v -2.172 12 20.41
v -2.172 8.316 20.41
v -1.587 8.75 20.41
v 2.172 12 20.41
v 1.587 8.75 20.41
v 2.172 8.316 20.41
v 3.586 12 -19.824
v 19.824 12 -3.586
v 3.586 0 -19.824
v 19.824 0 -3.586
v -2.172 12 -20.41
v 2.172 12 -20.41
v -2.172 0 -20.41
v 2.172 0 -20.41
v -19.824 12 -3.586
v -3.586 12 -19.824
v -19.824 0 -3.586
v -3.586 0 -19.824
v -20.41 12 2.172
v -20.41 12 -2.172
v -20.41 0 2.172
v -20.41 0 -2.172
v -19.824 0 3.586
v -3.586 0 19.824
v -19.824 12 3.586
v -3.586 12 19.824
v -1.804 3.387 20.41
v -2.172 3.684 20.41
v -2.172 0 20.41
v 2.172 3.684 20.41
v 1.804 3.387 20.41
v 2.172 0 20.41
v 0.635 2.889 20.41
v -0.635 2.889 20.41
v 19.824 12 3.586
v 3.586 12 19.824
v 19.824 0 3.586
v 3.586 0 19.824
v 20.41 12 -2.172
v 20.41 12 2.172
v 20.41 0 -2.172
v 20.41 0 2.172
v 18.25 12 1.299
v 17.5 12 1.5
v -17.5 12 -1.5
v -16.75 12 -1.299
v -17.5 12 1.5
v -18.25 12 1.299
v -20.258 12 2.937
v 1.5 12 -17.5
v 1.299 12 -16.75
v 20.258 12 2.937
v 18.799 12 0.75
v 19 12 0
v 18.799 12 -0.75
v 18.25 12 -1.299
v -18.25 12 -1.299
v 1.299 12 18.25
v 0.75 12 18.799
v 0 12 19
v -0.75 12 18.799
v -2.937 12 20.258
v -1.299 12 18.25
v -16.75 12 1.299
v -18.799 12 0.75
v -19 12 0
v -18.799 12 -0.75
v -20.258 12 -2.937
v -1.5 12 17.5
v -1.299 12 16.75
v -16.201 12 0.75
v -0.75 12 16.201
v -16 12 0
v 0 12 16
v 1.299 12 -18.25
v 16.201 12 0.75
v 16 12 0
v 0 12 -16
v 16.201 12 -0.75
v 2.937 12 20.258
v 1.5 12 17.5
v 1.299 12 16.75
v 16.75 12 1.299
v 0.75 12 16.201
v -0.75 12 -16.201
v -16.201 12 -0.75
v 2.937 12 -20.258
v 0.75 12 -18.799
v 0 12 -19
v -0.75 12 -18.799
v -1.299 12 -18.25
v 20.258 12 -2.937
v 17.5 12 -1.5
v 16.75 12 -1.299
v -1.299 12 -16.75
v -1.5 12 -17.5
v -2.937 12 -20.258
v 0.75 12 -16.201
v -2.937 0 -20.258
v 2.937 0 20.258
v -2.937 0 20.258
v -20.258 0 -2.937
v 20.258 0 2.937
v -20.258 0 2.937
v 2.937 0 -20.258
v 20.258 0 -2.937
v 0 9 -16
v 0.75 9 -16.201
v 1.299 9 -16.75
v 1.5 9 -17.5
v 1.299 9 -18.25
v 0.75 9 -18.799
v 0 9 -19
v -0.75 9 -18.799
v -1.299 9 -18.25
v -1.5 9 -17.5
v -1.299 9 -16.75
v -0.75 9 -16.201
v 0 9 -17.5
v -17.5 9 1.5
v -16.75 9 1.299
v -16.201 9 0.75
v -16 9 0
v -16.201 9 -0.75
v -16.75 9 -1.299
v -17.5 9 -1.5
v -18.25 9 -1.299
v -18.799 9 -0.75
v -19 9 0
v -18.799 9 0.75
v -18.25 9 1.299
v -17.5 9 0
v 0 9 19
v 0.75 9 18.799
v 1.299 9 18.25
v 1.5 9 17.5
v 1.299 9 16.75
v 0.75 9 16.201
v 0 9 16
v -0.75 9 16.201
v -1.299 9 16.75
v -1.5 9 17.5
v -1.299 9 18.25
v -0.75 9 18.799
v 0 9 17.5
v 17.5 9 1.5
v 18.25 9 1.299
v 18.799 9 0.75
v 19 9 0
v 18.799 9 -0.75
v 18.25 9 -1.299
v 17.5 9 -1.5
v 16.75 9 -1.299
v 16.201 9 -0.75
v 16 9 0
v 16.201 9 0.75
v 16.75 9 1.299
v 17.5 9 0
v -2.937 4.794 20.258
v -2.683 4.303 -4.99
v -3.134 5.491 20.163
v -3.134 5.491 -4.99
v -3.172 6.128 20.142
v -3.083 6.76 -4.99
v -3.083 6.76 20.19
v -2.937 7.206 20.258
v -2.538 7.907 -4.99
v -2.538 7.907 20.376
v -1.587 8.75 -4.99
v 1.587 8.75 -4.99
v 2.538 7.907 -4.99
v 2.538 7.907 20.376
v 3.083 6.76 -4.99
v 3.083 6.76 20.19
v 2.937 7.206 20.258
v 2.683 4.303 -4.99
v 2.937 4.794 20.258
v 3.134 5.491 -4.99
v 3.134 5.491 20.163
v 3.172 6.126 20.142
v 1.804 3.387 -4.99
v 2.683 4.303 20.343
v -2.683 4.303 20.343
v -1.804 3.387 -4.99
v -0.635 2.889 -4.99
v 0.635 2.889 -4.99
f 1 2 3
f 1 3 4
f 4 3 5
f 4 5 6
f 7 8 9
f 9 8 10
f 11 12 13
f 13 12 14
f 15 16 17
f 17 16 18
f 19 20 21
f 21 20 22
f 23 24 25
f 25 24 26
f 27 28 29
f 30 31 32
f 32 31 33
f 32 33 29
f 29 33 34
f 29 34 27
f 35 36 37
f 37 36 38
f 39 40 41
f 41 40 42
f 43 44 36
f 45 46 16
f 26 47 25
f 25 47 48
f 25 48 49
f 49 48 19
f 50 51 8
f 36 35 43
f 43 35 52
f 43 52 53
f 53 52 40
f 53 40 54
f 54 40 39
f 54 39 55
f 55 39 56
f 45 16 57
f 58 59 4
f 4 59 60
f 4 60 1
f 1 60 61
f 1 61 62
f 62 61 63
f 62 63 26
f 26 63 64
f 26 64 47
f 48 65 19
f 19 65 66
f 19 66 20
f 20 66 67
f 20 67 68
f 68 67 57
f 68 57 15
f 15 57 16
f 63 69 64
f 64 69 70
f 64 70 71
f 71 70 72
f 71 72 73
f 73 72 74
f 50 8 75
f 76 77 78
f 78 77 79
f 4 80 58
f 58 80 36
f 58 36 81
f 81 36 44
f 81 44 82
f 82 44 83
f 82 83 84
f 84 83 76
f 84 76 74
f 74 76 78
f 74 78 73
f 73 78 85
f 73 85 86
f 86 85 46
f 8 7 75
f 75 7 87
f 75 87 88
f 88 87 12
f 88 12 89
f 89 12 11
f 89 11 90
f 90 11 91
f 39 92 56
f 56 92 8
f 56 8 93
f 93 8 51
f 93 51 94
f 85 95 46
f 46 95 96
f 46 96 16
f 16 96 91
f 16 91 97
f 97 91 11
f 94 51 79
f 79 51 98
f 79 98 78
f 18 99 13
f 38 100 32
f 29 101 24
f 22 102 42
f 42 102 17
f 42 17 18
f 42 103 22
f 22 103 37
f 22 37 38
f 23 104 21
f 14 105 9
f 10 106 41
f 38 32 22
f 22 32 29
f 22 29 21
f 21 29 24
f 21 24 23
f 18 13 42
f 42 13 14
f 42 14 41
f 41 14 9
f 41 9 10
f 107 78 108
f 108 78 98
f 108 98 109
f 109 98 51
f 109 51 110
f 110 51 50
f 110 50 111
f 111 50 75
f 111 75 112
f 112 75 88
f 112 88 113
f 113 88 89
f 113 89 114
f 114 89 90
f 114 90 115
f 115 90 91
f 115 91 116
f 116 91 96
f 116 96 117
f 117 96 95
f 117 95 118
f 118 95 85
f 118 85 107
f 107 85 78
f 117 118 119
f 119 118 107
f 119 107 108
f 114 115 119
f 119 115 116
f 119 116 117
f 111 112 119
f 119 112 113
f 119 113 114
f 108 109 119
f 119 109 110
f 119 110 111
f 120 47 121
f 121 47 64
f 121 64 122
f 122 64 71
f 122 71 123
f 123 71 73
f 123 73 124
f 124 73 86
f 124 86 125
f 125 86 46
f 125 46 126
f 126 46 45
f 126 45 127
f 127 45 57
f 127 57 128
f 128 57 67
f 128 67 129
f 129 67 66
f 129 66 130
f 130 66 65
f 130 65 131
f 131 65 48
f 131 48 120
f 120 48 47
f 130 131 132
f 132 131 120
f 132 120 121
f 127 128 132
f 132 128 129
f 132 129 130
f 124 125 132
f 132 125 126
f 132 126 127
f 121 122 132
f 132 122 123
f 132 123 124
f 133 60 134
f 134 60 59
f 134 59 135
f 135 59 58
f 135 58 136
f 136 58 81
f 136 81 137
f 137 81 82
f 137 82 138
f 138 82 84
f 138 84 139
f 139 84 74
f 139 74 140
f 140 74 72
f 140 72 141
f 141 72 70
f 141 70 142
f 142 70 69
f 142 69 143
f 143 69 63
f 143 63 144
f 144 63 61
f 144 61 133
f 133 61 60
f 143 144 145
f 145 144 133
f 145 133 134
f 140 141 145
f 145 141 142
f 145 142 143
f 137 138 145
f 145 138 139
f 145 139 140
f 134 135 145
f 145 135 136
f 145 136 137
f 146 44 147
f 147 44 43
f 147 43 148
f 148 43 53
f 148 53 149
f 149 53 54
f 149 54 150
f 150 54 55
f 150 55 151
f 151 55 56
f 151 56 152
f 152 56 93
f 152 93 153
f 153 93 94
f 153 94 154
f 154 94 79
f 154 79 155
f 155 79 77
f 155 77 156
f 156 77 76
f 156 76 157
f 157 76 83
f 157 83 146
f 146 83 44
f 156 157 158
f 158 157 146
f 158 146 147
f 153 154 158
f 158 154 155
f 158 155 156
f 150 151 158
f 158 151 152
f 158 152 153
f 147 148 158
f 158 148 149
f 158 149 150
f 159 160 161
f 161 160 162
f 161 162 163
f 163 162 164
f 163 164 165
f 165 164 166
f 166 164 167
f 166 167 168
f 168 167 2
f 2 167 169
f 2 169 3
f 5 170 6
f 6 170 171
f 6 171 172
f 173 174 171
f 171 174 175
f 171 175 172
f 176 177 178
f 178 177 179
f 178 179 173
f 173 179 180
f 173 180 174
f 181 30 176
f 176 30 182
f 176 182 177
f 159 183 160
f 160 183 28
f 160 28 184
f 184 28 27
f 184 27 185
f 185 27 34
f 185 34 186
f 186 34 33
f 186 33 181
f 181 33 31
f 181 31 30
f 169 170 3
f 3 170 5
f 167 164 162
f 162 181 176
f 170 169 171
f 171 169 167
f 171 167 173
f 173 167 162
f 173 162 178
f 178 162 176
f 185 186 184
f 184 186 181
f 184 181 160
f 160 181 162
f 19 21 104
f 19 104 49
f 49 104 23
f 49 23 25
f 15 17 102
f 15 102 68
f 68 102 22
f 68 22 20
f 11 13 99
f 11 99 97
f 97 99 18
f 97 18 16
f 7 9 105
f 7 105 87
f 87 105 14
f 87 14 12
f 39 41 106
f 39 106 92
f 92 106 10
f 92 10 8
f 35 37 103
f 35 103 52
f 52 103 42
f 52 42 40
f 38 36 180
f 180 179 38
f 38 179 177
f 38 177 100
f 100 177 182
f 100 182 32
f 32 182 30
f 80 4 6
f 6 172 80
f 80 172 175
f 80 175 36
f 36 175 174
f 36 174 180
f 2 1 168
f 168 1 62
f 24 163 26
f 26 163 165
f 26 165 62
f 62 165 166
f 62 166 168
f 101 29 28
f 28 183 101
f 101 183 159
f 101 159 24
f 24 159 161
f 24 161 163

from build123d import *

# Parameters (mm, degrees)
BOSS_EXTRUDE1_DEPTH = 12
SKETCH3_R           = 1.5
CUT_EXTRUDE1_DEPTH  = 3
CUT_EXTRUDE2_DEPTH  = 25.4
FILLET1_R           = 2


with BuildPart() as part:
    # Sketch1 → Boss-Extrude1 (new body)
    with BuildSketch(Plane(origin=(0, 0, 0), x_dir=(1, 0, 0), z_dir=(0, 1, 0))):
        Polygon((-3, -20.41), (3, -20.41), (20.41, -3), (20.41, 3), (3, 20.41), (-3, 20.41), (-20.41, 3), (-20.41, -3), align=None)
    extrude(amount=BOSS_EXTRUDE1_DEPTH)

    # Sketch3 → Cut-Extrude1 (cut)
    with BuildSketch(Plane(origin=(0, 12, 0), x_dir=(1, 0, 0), z_dir=(0, 1, 0))):
        with Locations(Location((17.5, 0, 0), (0, 0, 270))):
            Circle(SKETCH3_R)
        with Locations(Location((0, -17.5, 0), (0, 0, 270))):
            Circle(SKETCH3_R)
        with Locations(Location((-17.5, 0, 0), (0, 0, 270))):
            Circle(SKETCH3_R)
        with Locations(Location((0, 17.5, 0), (0, 0, 270))):
            Circle(SKETCH3_R)
    extrude(amount=-CUT_EXTRUDE1_DEPTH, mode=Mode.SUBTRACT)

    # Sketch2 → Cut-Extrude2 (cut)
    with BuildSketch(Plane.XY.offset(20.41)):
        with BuildLine():
            Line((1.5875, 8.749630657), (-1.5875, 8.749630657))
            ThreePointArc((-1.5875, 8.749630657), (0, 2.825), (1.5875, 8.749630657))
        make_face()
    extrude(amount=-CUT_EXTRUDE2_DEPTH, mode=Mode.SUBTRACT)

    # Fillet1
    # the kernel refuses this fillet: 2 mm, written as the material it takes off along each edge
    with BuildSketch(Plane(origin=(20.41, -2.071067812, -3), x_dir=(0, 0, 1), z_dir=(0, 1, 0)), Plane(origin=(20.41, -2.071067812, 3), x_dir=(-0.7071067811865513, 0, 0.7071067811865438), z_dir=(0, 1, 0)), Plane(origin=(-20.41, -2.071067812, -3), x_dir=(0.7071067811865451, 0, -0.70710678118655), z_dir=(0, 1, 0)), Plane(origin=(-3, -2.071067812, -20.41), x_dir=(1, 0, 0), z_dir=(0, 1, 0)), Plane(origin=(3, -2.071067812, -20.41), x_dir=(0.7071067811865518, 0, 0.7071067811865432), z_dir=(0, 1, 0))) as fillet1_piece_1:
        with BuildLine():
            CenterArc((FILLET1_R * 0.414213562373, -FILLET1_R), FILLET1_R, 90, 45)
            Line((-FILLET1_R * 0.292893218813, -FILLET1_R * 0.292893218813), (0, 0))
            Line((0, 0), (FILLET1_R * 0.414213562373, 0))
        make_face()
    extrude(amount=16.142135624, mode=Mode.SUBTRACT)
    with BuildSketch(Plane(origin=(3, 4.968463332, 20.41), x_dir=(0.7071067811865491, 0, -0.7071067811865459), z_dir=(0, 1, 0)), Plane(origin=(-3, -2.071067812, 20.41), x_dir=(1, 0, 0), z_dir=(0, 1, 0))) as fillet1_piece_2:
        with BuildLine():
            CenterArc((FILLET1_R * 0.414213562373, FILLET1_R), FILLET1_R, 225, 45)
            Line((-FILLET1_R * 0.292893218813, FILLET1_R * 0.292893218813), (0, 0))
            Line((0, 0), (FILLET1_R * 0.414213562373, 0))
        make_face()
    extrude(amount=9.102604479, mode=Mode.SUBTRACT)
    with BuildSketch(Plane(origin=(-3, 4.968463332, 20.41), x_dir=(-0.7071067811865411, 0, -0.707106781186554), z_dir=(0, 1, 0)), Plane(origin=(3, -2.071067812, 20.41), x_dir=(-1, 0, 0), z_dir=(0, 1, 0))) as fillet1_piece_3:
        with BuildLine():
            CenterArc((FILLET1_R * 0.414213562373, -FILLET1_R), FILLET1_R, 90, 45)
            Line((-FILLET1_R * 0.292893218813, -FILLET1_R * 0.292893218813), (0, 0))
            Line((0, 0), (FILLET1_R * 0.414213562373, 0))
        make_face()
    extrude(amount=9.102604479, mode=Mode.SUBTRACT)
    with BuildSketch(Plane(origin=(-20.41, -2.071067812, 3), x_dir=(0.7071067811865429, 0, 0.7071067811865521), z_dir=(0, 1, 0))) as fillet1_piece_4:
        with BuildLine():
            CenterArc((FILLET1_R * 0.414213562373, FILLET1_R), FILLET1_R, 225, 45)
            Line((-FILLET1_R * 0.292893218813, FILLET1_R * 0.292893218813), (0, 0))
            Line((0, 0), (FILLET1_R * 0.414213562373, 0))
        make_face()
    extrude(amount=16.142135624, mode=Mode.SUBTRACT)


solid = part.part
